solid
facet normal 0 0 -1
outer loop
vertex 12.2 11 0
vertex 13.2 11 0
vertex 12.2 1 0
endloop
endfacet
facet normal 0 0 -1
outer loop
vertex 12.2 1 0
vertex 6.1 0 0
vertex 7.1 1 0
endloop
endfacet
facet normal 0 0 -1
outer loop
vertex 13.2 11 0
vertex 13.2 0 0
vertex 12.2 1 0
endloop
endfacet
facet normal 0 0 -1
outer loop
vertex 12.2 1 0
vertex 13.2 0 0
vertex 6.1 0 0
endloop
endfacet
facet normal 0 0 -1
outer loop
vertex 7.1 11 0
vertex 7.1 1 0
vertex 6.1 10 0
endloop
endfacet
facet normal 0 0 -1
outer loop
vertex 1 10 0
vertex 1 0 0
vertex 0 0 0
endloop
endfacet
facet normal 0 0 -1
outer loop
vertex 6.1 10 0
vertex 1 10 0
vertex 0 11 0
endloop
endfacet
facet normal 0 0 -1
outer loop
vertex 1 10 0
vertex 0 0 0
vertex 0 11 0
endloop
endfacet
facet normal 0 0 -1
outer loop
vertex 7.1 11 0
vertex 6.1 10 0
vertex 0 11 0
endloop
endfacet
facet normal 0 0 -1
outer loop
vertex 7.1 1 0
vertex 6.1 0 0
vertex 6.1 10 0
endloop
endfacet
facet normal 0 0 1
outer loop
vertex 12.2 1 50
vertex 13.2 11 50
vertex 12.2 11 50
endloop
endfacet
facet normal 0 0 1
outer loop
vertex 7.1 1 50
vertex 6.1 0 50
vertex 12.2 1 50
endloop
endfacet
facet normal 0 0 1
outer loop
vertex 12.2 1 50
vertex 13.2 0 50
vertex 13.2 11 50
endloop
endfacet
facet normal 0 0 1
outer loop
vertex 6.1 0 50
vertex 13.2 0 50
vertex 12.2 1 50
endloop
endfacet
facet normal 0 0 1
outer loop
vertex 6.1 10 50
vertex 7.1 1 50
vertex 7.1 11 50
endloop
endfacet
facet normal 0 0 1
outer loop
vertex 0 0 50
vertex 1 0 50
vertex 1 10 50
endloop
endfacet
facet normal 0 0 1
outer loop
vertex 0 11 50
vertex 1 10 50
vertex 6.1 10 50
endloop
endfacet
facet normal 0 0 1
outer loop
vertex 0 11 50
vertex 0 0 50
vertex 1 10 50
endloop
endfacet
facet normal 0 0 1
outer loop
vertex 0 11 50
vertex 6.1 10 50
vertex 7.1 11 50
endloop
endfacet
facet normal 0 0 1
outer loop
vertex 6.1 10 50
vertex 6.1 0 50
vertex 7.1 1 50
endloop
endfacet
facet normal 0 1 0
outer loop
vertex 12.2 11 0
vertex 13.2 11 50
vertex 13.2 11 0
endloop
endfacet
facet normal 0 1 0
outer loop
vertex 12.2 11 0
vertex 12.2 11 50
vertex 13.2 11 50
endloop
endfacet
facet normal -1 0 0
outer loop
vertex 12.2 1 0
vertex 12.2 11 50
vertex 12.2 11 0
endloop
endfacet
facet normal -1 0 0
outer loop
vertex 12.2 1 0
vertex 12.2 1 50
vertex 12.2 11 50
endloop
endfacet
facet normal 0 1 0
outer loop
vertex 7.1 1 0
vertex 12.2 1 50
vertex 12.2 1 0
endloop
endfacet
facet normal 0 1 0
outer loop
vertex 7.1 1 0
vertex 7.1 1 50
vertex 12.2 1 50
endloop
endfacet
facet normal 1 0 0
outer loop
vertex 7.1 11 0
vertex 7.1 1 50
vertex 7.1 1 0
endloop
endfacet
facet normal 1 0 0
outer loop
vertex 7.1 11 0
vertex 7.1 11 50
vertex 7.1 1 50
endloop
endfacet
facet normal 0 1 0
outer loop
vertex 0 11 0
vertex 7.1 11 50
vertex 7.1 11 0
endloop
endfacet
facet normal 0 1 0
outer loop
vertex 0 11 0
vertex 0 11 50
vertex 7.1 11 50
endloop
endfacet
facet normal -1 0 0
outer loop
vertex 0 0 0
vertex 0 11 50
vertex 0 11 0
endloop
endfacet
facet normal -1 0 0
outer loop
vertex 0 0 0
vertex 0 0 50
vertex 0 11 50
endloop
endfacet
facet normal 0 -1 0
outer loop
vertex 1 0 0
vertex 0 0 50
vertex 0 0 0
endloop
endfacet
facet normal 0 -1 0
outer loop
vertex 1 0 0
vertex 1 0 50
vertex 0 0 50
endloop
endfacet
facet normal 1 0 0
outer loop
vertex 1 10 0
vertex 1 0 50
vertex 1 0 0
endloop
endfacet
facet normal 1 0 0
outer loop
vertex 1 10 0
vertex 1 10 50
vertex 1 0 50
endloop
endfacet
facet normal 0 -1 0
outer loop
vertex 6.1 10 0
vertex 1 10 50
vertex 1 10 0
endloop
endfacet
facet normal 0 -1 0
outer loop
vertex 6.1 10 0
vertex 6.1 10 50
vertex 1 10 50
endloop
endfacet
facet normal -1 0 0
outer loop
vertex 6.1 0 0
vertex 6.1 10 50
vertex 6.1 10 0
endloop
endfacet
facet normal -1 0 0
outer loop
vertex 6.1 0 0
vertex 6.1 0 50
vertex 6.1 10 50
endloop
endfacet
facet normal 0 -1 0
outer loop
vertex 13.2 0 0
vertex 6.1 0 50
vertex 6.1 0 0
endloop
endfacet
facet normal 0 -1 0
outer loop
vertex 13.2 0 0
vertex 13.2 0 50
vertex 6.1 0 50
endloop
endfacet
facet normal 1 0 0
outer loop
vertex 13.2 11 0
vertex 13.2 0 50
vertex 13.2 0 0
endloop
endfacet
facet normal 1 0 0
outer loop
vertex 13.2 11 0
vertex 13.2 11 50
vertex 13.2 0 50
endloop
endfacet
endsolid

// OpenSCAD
h = 50;

mw = 5.1;
bw = 5.1;

over = 10;

wall = 1;

linear_extrude(height = h) {
    difference() {
        square([mw + bw + 3 * wall, over + wall]);
        translate([wall, -1])
        square([mw, over + 1]);
        translate([mw + 2 * wall, wall])
        square([bw, over + 1]);
    }
}
